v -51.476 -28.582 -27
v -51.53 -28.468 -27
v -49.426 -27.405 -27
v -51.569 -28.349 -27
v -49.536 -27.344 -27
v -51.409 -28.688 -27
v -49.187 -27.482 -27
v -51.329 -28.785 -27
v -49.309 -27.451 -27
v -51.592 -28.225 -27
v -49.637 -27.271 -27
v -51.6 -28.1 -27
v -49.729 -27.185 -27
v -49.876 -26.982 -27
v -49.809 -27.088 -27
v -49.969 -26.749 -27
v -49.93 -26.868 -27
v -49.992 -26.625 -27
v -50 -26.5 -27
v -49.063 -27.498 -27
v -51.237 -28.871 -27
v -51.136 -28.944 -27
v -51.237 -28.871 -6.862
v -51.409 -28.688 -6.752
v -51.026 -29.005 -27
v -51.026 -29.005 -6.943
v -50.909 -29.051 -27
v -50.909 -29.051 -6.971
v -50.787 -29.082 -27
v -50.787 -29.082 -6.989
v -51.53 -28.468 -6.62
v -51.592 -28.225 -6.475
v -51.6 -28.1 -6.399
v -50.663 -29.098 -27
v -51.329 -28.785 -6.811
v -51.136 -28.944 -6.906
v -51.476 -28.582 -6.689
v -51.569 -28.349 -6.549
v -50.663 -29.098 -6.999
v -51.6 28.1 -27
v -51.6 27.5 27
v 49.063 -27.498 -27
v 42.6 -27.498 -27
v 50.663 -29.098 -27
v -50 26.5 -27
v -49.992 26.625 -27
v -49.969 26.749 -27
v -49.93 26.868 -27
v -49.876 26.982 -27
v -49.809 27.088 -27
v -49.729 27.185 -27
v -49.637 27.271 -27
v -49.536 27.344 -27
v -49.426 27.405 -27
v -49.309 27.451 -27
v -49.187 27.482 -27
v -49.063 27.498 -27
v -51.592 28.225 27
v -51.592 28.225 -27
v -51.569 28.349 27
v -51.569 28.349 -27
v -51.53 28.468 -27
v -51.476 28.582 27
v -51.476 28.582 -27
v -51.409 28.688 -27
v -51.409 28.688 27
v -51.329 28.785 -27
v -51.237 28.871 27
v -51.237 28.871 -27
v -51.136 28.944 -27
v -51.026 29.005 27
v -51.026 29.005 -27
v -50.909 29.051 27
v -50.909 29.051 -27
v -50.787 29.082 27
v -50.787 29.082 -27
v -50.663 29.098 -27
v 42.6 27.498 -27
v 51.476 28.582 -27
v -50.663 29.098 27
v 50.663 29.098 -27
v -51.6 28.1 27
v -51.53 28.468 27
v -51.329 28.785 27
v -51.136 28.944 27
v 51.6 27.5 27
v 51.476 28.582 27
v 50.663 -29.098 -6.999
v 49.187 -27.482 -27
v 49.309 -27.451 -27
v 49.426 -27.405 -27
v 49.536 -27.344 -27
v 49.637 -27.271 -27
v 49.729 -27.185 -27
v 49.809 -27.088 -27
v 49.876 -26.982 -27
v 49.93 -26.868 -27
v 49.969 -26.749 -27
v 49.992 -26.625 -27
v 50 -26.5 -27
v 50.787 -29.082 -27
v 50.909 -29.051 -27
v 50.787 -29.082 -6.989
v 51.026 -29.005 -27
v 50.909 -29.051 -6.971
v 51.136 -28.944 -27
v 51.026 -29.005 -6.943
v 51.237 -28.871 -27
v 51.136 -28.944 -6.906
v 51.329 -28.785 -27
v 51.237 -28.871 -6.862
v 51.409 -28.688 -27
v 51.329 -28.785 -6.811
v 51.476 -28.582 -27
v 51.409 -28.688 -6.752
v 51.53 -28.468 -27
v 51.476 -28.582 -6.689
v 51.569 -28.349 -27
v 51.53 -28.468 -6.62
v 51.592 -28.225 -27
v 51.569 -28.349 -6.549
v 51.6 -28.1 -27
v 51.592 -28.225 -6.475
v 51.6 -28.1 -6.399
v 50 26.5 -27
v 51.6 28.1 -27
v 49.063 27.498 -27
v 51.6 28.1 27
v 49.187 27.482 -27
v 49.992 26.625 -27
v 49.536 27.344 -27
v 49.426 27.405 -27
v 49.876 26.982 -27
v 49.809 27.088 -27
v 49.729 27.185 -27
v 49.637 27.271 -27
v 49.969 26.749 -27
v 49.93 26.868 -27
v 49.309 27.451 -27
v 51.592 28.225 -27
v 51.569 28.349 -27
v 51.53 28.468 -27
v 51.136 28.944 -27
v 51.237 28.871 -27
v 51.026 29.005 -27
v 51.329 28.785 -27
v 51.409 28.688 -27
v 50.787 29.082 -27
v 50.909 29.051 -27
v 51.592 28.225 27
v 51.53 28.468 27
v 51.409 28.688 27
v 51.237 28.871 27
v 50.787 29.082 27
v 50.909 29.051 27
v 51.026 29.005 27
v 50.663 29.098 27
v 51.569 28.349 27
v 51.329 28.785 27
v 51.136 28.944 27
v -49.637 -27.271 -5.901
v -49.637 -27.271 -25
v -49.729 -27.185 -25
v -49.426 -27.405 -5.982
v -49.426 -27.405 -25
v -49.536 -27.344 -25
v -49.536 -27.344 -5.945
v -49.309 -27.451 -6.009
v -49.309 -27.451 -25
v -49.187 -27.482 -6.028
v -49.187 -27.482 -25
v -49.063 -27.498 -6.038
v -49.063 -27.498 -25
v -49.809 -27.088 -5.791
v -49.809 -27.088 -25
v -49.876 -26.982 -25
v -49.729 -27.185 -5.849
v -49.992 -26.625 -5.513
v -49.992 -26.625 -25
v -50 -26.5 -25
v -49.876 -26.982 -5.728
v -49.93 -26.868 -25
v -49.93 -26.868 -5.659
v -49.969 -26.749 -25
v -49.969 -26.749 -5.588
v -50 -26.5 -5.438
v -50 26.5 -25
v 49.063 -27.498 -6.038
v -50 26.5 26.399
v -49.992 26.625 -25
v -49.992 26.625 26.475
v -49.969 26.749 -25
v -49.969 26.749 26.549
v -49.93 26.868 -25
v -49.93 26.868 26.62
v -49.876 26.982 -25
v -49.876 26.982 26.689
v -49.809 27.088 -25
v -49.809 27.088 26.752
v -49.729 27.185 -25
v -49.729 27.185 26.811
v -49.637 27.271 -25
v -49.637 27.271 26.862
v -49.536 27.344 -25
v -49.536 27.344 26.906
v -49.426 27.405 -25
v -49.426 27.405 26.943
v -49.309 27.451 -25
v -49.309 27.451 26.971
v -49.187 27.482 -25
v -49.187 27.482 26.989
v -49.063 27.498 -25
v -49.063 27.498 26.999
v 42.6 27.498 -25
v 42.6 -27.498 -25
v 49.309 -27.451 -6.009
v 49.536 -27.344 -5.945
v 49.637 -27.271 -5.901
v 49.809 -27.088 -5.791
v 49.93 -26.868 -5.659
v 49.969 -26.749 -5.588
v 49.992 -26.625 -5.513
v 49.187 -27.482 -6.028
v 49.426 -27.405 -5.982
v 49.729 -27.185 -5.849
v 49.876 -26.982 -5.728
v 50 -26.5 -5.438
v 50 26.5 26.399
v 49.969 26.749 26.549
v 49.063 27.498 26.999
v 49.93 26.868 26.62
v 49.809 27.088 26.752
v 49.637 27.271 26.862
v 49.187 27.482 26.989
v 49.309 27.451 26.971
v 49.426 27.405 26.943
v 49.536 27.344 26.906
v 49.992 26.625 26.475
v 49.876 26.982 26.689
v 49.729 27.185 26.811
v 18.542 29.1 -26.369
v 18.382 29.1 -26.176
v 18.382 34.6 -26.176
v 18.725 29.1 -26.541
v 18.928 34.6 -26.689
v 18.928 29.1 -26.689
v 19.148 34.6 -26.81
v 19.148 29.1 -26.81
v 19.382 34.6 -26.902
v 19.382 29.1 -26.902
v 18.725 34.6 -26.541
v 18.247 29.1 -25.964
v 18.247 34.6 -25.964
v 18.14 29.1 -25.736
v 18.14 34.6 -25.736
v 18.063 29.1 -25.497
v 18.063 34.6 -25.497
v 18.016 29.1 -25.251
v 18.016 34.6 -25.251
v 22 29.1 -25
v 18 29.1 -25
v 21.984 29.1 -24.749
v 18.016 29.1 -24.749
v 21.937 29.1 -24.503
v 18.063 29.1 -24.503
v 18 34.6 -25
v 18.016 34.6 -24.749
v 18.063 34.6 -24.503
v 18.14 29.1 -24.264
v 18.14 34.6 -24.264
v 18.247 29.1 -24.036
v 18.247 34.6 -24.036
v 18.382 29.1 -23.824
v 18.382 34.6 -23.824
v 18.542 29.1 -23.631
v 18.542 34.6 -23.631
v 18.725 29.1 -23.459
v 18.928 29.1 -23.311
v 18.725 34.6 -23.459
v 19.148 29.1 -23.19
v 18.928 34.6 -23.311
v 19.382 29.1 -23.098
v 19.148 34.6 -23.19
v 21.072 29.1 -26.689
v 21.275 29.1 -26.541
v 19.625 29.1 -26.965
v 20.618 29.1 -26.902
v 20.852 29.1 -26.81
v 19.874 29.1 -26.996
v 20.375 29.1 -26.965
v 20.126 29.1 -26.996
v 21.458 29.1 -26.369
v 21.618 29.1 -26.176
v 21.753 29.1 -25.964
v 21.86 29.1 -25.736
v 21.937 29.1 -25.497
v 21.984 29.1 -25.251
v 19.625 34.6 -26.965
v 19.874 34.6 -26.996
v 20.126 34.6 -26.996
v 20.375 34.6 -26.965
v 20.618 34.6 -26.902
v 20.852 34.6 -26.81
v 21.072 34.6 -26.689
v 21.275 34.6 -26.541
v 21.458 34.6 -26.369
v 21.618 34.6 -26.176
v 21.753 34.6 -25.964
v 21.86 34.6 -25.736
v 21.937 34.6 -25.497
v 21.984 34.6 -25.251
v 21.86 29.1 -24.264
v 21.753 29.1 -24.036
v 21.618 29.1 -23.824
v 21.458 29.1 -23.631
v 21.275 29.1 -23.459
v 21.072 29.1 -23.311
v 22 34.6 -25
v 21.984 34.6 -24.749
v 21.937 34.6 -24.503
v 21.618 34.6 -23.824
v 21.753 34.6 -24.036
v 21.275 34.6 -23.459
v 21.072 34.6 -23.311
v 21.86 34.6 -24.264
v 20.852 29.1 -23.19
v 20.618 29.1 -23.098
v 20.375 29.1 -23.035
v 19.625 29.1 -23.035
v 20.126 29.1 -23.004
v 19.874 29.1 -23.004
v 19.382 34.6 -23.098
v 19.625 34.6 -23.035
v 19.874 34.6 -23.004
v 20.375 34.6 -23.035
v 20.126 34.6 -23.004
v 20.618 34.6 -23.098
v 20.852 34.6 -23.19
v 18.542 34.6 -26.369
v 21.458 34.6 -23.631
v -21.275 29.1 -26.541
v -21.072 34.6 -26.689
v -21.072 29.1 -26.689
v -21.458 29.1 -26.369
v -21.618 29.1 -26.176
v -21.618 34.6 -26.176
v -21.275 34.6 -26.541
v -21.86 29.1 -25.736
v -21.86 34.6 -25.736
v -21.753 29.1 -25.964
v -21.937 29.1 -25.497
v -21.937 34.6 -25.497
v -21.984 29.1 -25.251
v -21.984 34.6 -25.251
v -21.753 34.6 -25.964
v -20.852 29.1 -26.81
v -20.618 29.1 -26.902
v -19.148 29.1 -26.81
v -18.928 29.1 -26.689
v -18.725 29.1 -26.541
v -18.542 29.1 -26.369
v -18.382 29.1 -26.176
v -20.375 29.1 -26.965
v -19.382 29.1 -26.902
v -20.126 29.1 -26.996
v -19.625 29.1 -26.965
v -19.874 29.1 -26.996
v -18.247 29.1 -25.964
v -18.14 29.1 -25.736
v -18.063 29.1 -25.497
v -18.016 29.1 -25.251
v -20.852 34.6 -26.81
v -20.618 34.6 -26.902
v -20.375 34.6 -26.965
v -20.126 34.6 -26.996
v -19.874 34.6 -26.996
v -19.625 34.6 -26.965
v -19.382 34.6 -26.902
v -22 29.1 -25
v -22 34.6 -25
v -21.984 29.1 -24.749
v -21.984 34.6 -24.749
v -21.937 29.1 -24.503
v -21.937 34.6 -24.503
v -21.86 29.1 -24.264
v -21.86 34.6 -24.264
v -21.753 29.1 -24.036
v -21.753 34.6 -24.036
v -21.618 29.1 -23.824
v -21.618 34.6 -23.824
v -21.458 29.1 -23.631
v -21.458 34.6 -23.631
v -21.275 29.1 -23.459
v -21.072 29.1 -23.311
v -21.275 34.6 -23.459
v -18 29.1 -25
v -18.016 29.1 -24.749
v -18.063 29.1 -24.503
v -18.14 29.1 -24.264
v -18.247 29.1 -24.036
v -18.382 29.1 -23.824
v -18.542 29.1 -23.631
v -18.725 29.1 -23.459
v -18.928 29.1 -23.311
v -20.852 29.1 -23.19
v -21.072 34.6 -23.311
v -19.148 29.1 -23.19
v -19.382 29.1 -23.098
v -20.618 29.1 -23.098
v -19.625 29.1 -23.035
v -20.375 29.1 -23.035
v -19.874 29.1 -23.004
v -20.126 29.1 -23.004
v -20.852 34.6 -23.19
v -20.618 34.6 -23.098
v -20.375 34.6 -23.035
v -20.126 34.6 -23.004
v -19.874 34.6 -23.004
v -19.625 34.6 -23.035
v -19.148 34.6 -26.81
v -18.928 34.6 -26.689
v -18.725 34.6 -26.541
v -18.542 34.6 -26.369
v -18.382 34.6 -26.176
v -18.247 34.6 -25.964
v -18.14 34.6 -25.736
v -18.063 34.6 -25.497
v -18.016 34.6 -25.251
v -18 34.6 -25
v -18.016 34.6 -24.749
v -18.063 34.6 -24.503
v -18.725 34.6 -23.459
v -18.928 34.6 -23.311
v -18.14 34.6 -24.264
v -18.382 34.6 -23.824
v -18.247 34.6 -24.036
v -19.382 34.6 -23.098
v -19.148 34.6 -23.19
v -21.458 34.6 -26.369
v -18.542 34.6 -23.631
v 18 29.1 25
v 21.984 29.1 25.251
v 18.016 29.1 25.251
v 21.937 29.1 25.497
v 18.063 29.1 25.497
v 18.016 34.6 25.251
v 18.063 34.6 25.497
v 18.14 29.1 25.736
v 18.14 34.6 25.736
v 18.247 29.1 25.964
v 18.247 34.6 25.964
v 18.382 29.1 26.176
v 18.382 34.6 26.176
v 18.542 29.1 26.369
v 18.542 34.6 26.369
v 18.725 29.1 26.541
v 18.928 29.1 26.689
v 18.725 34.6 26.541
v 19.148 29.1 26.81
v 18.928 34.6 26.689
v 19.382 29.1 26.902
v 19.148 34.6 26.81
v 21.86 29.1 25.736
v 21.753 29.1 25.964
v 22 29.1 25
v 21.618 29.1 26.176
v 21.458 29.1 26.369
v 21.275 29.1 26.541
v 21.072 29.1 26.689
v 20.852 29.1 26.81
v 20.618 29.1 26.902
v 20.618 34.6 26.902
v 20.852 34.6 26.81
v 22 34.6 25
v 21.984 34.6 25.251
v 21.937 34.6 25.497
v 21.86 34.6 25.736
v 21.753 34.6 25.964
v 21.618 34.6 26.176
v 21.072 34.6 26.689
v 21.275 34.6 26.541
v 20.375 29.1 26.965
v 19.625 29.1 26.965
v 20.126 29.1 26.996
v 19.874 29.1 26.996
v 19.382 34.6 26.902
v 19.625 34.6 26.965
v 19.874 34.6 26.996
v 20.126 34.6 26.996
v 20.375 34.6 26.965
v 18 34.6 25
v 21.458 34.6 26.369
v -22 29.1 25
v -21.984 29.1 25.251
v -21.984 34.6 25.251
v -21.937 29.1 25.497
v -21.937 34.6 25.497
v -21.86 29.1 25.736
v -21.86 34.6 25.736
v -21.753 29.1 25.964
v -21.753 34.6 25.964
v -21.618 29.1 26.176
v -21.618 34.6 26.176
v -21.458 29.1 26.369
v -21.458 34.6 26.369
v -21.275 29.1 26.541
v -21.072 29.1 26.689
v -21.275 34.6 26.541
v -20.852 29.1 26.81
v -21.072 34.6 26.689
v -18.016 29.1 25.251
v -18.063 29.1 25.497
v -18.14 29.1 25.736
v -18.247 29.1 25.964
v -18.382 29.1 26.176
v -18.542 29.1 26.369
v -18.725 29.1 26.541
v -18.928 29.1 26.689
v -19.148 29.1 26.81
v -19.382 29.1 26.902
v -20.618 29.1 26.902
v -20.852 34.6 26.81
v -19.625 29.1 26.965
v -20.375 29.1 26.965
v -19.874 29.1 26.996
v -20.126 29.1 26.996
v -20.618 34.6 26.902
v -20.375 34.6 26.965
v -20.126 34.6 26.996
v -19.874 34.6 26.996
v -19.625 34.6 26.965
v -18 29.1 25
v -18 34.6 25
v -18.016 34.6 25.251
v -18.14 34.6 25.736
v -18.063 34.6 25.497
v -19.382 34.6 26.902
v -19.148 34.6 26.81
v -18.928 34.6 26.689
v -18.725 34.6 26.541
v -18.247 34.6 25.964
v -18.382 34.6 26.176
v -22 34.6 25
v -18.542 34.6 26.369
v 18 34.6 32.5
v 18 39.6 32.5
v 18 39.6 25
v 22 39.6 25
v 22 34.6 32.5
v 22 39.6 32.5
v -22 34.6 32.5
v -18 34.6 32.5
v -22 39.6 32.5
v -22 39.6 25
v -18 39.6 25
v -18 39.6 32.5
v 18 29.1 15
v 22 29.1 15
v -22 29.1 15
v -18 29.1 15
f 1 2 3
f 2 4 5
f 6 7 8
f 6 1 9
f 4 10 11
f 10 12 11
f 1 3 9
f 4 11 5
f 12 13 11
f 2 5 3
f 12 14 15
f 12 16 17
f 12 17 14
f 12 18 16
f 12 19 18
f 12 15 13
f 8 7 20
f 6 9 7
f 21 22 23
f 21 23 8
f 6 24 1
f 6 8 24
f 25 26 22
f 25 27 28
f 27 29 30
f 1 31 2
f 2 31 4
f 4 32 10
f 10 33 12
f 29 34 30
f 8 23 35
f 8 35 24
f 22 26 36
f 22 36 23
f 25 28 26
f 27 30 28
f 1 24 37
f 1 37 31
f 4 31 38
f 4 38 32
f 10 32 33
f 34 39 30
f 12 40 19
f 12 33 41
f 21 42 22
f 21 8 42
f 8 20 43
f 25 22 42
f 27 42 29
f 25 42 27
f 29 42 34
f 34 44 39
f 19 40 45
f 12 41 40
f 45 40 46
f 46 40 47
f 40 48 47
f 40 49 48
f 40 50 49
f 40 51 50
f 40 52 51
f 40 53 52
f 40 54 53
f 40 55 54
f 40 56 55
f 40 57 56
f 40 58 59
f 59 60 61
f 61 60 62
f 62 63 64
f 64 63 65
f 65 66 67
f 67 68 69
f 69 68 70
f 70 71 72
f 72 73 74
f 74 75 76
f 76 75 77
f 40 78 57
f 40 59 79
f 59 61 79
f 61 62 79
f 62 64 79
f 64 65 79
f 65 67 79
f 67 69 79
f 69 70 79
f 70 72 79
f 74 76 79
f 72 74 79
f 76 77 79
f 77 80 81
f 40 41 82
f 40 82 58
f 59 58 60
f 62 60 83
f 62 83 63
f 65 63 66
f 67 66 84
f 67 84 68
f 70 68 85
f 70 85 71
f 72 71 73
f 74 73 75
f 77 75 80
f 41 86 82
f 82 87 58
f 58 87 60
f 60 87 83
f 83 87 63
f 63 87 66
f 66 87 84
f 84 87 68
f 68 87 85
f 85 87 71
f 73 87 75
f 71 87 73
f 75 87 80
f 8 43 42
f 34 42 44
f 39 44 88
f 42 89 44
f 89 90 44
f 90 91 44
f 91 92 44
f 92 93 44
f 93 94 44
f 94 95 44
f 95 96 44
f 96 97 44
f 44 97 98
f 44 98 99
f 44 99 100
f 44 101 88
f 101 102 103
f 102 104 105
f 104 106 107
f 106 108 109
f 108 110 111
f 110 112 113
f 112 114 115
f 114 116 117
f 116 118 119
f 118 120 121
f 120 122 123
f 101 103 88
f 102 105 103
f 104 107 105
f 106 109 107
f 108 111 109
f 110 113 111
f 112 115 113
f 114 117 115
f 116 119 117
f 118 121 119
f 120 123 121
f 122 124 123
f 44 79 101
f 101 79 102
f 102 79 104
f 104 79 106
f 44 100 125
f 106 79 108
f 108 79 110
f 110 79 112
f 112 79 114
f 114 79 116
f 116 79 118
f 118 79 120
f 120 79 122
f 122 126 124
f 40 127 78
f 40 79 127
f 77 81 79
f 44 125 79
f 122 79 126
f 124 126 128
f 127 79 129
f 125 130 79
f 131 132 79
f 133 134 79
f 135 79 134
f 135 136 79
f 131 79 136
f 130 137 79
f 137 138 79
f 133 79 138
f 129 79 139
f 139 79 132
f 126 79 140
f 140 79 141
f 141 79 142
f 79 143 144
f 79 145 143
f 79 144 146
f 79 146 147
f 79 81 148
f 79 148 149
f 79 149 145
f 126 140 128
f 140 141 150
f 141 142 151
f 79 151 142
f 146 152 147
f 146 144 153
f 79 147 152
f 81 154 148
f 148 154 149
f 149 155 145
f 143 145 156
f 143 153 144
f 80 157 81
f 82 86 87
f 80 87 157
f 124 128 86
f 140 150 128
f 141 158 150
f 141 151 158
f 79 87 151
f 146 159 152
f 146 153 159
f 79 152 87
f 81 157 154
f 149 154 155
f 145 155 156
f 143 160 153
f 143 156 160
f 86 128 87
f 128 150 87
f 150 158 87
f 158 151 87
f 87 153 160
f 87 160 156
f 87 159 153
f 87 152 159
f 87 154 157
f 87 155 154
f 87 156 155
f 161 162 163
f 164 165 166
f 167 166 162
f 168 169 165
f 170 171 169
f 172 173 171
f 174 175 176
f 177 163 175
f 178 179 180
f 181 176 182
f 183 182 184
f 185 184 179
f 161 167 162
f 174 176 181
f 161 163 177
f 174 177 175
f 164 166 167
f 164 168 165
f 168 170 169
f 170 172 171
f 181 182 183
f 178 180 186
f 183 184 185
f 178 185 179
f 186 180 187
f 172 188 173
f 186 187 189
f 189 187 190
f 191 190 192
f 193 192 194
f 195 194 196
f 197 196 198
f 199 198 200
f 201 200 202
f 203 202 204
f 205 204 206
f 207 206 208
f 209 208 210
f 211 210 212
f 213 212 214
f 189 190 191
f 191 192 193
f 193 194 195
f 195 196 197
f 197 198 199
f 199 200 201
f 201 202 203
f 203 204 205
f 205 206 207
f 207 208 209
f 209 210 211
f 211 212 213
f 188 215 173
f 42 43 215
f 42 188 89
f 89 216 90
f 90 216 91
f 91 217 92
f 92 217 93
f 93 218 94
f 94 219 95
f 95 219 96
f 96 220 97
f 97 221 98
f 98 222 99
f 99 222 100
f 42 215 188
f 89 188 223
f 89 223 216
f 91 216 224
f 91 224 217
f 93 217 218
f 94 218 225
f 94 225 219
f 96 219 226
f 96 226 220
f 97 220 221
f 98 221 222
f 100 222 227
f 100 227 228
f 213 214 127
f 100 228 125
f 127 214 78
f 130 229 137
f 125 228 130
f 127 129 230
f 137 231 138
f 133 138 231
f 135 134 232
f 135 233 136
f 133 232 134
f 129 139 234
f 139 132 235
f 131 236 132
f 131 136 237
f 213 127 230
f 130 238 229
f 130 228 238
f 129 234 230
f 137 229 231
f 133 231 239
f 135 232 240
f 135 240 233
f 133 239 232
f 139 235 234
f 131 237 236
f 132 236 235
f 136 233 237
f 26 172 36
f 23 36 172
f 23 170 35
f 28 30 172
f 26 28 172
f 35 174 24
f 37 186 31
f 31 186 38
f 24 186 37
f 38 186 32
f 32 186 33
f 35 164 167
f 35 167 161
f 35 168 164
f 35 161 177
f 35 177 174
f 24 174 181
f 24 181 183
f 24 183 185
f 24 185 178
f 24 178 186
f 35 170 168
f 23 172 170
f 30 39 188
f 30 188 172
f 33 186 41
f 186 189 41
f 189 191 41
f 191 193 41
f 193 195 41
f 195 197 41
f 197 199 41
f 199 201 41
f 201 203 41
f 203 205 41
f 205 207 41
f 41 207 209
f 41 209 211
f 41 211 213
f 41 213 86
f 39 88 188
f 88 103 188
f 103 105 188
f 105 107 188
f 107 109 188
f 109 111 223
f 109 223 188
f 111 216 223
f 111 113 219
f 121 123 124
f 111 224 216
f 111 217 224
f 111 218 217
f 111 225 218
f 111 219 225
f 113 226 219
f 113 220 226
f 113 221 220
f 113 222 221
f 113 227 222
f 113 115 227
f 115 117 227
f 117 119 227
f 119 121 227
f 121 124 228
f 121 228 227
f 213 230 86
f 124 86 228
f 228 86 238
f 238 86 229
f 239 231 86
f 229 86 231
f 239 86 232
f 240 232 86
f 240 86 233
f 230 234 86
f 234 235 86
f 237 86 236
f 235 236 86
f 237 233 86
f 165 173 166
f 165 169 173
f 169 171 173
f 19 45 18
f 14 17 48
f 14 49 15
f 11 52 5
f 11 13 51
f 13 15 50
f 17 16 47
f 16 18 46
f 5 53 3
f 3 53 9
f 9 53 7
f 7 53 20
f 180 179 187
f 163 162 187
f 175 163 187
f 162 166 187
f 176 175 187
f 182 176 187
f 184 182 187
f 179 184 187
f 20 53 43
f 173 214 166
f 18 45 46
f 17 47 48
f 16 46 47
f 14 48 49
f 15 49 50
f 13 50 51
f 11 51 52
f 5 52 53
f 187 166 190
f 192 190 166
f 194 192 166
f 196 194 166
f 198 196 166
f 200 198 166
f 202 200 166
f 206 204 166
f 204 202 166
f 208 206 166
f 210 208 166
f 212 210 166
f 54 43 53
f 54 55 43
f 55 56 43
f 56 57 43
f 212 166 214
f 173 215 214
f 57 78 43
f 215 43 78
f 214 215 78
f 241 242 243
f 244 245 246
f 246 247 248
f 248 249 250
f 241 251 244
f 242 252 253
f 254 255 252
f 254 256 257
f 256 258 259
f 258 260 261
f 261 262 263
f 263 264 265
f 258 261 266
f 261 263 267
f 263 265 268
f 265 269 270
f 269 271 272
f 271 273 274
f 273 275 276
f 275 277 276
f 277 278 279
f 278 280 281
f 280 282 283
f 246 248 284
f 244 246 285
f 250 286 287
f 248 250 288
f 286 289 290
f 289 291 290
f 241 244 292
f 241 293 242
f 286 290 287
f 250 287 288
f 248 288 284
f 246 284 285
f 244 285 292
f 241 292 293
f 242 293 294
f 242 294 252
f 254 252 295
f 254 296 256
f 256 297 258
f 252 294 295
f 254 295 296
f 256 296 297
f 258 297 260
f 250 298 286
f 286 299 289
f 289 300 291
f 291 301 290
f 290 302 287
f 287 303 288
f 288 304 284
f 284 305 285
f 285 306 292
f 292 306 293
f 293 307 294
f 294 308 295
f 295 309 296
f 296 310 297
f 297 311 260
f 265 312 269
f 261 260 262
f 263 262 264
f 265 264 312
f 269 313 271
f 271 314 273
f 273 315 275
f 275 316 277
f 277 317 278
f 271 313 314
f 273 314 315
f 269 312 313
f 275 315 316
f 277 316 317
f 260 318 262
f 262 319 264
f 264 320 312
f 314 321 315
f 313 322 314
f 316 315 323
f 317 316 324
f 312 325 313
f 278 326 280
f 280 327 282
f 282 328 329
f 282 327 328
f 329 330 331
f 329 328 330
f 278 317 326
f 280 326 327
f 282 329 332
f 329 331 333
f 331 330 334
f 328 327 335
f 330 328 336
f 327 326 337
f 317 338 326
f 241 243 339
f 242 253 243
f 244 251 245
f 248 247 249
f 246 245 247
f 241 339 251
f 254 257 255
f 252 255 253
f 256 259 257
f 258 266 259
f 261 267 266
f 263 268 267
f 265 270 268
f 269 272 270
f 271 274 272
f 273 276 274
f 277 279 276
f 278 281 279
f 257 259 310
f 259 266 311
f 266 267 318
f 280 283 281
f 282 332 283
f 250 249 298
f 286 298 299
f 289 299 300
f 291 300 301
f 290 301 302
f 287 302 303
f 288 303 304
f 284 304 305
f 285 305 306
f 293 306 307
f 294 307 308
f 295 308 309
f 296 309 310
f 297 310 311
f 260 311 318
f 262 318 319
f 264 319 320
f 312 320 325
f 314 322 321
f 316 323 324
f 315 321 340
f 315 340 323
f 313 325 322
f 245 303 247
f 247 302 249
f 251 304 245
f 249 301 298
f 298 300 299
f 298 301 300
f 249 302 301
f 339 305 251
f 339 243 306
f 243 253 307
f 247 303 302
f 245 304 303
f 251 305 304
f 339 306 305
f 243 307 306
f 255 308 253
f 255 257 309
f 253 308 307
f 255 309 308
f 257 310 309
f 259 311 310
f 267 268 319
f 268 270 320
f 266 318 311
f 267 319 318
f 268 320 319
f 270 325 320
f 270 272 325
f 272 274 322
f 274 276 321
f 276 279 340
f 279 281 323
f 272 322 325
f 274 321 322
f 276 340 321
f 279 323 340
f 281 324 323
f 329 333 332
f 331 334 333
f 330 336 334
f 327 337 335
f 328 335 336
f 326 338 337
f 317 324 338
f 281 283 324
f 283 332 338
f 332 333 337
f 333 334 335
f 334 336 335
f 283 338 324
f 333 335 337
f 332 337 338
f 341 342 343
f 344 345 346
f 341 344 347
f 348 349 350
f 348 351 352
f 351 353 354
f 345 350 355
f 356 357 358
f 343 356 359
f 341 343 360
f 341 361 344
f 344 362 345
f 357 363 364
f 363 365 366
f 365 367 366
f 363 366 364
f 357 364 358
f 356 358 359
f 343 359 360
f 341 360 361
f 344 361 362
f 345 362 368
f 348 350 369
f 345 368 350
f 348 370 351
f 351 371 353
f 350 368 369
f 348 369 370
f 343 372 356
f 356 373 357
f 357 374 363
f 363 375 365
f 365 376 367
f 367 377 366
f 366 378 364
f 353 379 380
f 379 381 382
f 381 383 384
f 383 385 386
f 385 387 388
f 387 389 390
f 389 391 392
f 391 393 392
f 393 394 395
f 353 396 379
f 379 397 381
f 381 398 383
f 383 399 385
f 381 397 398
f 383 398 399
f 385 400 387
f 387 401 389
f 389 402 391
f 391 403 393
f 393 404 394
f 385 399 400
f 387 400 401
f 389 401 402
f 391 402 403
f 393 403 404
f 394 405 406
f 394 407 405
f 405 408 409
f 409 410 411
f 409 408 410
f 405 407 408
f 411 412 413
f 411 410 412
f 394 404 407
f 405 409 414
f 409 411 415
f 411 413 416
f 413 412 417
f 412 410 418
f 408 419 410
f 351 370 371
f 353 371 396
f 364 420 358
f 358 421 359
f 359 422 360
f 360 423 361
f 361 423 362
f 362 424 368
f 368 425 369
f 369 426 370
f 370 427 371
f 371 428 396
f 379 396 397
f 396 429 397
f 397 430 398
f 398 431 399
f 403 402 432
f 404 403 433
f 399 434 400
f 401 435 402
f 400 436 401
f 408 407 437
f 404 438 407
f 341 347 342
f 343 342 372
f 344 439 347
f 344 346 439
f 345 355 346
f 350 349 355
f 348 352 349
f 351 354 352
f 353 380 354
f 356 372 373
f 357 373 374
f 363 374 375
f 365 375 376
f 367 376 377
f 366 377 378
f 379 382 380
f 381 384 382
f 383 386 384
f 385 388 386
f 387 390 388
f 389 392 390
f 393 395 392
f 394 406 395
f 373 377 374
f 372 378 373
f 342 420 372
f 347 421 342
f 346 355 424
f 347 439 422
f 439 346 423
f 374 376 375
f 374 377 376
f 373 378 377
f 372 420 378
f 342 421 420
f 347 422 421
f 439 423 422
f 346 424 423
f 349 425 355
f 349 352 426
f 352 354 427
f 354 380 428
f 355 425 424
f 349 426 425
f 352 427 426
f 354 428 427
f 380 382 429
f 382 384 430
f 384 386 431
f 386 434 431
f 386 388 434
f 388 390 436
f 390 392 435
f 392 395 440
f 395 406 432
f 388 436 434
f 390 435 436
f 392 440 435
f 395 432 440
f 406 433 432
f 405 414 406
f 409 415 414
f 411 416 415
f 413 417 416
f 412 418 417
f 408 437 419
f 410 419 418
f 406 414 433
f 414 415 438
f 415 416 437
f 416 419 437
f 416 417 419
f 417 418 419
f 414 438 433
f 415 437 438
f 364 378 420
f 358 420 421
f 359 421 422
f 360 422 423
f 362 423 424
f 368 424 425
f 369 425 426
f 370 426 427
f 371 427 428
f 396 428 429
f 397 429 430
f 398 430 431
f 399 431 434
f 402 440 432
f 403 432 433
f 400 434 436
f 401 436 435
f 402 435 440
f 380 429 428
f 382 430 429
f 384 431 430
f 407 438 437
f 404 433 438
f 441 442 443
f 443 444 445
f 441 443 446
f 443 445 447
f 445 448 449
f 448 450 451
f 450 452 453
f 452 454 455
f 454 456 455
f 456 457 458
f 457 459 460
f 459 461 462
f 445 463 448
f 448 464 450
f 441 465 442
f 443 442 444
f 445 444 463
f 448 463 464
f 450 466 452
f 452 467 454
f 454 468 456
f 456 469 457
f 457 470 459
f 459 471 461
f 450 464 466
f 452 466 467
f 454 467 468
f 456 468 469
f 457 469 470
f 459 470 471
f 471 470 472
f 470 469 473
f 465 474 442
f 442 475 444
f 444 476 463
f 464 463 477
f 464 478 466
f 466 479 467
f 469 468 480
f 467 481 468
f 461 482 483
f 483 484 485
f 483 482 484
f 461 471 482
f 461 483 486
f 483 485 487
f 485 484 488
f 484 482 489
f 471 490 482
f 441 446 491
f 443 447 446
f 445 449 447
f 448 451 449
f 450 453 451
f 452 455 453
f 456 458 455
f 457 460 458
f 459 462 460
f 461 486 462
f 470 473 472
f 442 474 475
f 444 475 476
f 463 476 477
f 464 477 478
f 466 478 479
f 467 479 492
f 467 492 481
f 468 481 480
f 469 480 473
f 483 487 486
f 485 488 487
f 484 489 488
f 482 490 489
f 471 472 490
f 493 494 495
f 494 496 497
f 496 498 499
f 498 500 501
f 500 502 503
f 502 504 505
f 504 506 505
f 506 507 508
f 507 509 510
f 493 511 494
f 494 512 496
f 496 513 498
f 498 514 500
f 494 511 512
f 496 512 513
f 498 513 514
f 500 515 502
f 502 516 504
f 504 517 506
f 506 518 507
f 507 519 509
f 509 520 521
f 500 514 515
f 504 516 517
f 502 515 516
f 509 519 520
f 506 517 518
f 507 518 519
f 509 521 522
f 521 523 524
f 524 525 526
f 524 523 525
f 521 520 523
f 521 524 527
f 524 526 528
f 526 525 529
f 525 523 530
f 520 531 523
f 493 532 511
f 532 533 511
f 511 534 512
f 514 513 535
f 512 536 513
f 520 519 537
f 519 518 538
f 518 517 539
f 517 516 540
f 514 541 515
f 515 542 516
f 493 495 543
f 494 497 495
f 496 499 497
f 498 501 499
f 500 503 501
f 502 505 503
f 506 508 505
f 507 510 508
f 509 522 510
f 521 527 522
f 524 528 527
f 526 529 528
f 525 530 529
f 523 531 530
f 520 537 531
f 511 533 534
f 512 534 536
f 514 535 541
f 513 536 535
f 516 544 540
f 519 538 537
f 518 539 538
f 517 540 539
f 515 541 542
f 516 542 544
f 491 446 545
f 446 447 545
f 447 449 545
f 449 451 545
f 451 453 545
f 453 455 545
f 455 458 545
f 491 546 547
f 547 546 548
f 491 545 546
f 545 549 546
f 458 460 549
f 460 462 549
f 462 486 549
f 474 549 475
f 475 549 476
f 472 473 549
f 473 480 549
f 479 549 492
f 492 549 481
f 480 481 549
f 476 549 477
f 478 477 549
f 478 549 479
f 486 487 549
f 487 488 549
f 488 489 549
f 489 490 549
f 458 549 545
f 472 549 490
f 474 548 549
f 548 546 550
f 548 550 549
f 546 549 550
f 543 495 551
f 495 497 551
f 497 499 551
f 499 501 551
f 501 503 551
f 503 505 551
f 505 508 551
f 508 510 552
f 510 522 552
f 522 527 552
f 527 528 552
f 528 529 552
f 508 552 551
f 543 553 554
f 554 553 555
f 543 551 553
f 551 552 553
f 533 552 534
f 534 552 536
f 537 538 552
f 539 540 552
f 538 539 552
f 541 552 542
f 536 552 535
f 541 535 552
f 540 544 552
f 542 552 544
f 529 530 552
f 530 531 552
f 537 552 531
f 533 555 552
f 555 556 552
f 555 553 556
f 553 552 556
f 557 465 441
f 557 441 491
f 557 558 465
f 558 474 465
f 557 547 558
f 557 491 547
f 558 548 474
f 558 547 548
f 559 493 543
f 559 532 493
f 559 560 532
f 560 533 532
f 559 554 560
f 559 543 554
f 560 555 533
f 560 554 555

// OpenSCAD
// Parametric tape measure holder for IKEA SKÅDIS pegboard
// All dimensions in mm

$fn = 50;

/* [Holder Dimensions] */
// Internal width of the holder cavity
measure_width = 100;
// Internal depth of the holder cavity
measure_depth = 55;

/* [Wall and Structure] */
// Thickness of side and back walls
wall_thickness = 1.6;
// Thickness of the base plate
base_thickness = 2;
// Radius of rounded corners on holder
corner_radius = 1;

/* [Height Settings] */
// Height of front wall
front_height = 20;
// Height of back wall (minimum 54mm for SKÅDIS)
back_height = 54;

/* [Base Slot] */
// Width of measurement tape slot in base
slot_width = 8;
// Enable slot on right side of base
slot_right = true;
// Enable slot on left side of base
slot_left = false;

/* [Pegboard Specifications] */
// Width of pegboard holes
pegboard_hole_width = 5;
// Height of pegboard holes
pegboard_hole_height = 15;
// Radius of rounded ends on pegboard holes
pegboard_hole_radius = 2.5;
// Horizontal spacing between pegboard holes (center to center)
pegboard_horizontal_spacing = 40;
// Vertical spacing between pegboard holes (center to center)
pegboard_vertical_spacing = 40;
// Depth of pegboard material
pegboard_depth = 5;

/* [Print Tolerance] */
// Clearance for pegboard pins (smaller = tighter fit)
pegboard_tolerance = 0.5;

// Calculated dimensions
width = measure_width + 2*wall_thickness;   // X axis
depth = measure_depth + 2*wall_thickness;   // Y axis

// Main assembly
tape_measure_holder();

module tape_measure_holder() {
    wedge_depth = back_height - front_height;
    
    union() {
        difference() {
            // Outer cuboid
            rounded_cuboid(width, depth, back_height, corner_radius);
            
            // Inner cavity (full height)
            rounded_cuboid(measure_width, measure_depth, back_height, corner_radius);
            
            // Wedge to create slope from front to back
            rotate([90, 0, 90])
                linear_extrude(width, center = true)
                    polygon([
                        [-depth/2, back_height/2],
                        [depth/2-wall_thickness, back_height/2],
                        [-depth/2, back_height/2 - (back_height - front_height)]
                    ]);
        }
        
        // Base plate with slot
        
        base_plate_width = width - 2*corner_radius;
        base_plate_depth = depth - 2*corner_radius;
        
        difference() {
            translate([0, 0, -back_height/2 + base_thickness/2])
                cube([base_plate_width, base_plate_depth, base_thickness], center = true);
            
            // Right side slot
            if (slot_right) {
                translate([base_plate_width/2 - slot_width/2, 0, -back_height/2 + base_thickness/2])
                    cube([slot_width, base_plate_depth + 1, base_thickness + 1], center = true);
            }
            
            // Left side slot
            if (slot_left) {
                translate([-base_plate_width/2 + slot_width/2, 0, -back_height/2 + base_thickness/2])
                    cube([slot_width, base_plate_depth + 1, base_thickness + 1], center = true);
            }
        }
        
        // Locking pins for pegboard
        translate([-pegboard_horizontal_spacing/2, depth/2, -back_height/2 + pegboard_hole_height/2 - pegboard_tolerance])
            pegboard_connector();
        
        translate([pegboard_horizontal_spacing/2, depth/2, -back_height/2 + pegboard_hole_height/2 - pegboard_tolerance])
            pegboard_connector();
    }
}

// Pegboard connector pin
module pegboard_connector() {
    pin_radius = pegboard_hole_radius - pegboard_tolerance;
    bottom_pin_z = -(pegboard_hole_height/2 - pegboard_hole_radius);
    top_pin_z = pegboard_vertical_spacing + pegboard_hole_height/2 - pegboard_hole_radius;

    // Bottom pin
    translate([0, 0, bottom_pin_z])
        rotate([-90, 0, 0])
            cylinder(r = pin_radius, h = pegboard_depth + pegboard_tolerance, center = false);
    
    // Top pin
    translate([0, 0, top_pin_z])
        rotate([-90, 0, 0])
            cylinder(r = pin_radius, h = pegboard_depth + pegboard_tolerance, center = false);
    
    // Vertical locking oblong
    oblong_width = 2*pegboard_hole_radius - 2*pegboard_tolerance;
    oblong_depth = 2*pegboard_hole_radius;
    oblong_height = 3*pegboard_hole_radius;
    
    translate([0, pegboard_depth + pegboard_tolerance + pegboard_hole_radius, top_pin_z + oblong_height/2])
        cube([oblong_width, oblong_depth, oblong_height], center = true);
    
    // Support wedge for oblong
    support_height = pegboard_hole_height - 2*pegboard_hole_radius;
    support_depth = pegboard_depth + pegboard_tolerance + oblong_depth;
    
    rotate([90, 0, 90])
        linear_extrude(oblong_width, center = true)
            polygon([
                [0, top_pin_z],
                [0, top_pin_z - support_height],
                [support_depth, top_pin_z]
            ]);
}

// Reusable module for rounded cuboid
module rounded_cuboid(w, d, h, r) {
    hull() {
        translate([-(w/2 - r), -(d/2 - r), -h/2])
            cylinder(r = r, h = h);
        translate([(w/2 - r), -(d/2 - r), -h/2])
            cylinder(r = r, h = h);
        translate([-(w/2 - r), (d/2 - r), -h/2])
            cylinder(r = r, h = h);
        translate([(w/2 - r), (d/2 - r), -h/2])
            cylinder(r = r, h = h);
    }
}
